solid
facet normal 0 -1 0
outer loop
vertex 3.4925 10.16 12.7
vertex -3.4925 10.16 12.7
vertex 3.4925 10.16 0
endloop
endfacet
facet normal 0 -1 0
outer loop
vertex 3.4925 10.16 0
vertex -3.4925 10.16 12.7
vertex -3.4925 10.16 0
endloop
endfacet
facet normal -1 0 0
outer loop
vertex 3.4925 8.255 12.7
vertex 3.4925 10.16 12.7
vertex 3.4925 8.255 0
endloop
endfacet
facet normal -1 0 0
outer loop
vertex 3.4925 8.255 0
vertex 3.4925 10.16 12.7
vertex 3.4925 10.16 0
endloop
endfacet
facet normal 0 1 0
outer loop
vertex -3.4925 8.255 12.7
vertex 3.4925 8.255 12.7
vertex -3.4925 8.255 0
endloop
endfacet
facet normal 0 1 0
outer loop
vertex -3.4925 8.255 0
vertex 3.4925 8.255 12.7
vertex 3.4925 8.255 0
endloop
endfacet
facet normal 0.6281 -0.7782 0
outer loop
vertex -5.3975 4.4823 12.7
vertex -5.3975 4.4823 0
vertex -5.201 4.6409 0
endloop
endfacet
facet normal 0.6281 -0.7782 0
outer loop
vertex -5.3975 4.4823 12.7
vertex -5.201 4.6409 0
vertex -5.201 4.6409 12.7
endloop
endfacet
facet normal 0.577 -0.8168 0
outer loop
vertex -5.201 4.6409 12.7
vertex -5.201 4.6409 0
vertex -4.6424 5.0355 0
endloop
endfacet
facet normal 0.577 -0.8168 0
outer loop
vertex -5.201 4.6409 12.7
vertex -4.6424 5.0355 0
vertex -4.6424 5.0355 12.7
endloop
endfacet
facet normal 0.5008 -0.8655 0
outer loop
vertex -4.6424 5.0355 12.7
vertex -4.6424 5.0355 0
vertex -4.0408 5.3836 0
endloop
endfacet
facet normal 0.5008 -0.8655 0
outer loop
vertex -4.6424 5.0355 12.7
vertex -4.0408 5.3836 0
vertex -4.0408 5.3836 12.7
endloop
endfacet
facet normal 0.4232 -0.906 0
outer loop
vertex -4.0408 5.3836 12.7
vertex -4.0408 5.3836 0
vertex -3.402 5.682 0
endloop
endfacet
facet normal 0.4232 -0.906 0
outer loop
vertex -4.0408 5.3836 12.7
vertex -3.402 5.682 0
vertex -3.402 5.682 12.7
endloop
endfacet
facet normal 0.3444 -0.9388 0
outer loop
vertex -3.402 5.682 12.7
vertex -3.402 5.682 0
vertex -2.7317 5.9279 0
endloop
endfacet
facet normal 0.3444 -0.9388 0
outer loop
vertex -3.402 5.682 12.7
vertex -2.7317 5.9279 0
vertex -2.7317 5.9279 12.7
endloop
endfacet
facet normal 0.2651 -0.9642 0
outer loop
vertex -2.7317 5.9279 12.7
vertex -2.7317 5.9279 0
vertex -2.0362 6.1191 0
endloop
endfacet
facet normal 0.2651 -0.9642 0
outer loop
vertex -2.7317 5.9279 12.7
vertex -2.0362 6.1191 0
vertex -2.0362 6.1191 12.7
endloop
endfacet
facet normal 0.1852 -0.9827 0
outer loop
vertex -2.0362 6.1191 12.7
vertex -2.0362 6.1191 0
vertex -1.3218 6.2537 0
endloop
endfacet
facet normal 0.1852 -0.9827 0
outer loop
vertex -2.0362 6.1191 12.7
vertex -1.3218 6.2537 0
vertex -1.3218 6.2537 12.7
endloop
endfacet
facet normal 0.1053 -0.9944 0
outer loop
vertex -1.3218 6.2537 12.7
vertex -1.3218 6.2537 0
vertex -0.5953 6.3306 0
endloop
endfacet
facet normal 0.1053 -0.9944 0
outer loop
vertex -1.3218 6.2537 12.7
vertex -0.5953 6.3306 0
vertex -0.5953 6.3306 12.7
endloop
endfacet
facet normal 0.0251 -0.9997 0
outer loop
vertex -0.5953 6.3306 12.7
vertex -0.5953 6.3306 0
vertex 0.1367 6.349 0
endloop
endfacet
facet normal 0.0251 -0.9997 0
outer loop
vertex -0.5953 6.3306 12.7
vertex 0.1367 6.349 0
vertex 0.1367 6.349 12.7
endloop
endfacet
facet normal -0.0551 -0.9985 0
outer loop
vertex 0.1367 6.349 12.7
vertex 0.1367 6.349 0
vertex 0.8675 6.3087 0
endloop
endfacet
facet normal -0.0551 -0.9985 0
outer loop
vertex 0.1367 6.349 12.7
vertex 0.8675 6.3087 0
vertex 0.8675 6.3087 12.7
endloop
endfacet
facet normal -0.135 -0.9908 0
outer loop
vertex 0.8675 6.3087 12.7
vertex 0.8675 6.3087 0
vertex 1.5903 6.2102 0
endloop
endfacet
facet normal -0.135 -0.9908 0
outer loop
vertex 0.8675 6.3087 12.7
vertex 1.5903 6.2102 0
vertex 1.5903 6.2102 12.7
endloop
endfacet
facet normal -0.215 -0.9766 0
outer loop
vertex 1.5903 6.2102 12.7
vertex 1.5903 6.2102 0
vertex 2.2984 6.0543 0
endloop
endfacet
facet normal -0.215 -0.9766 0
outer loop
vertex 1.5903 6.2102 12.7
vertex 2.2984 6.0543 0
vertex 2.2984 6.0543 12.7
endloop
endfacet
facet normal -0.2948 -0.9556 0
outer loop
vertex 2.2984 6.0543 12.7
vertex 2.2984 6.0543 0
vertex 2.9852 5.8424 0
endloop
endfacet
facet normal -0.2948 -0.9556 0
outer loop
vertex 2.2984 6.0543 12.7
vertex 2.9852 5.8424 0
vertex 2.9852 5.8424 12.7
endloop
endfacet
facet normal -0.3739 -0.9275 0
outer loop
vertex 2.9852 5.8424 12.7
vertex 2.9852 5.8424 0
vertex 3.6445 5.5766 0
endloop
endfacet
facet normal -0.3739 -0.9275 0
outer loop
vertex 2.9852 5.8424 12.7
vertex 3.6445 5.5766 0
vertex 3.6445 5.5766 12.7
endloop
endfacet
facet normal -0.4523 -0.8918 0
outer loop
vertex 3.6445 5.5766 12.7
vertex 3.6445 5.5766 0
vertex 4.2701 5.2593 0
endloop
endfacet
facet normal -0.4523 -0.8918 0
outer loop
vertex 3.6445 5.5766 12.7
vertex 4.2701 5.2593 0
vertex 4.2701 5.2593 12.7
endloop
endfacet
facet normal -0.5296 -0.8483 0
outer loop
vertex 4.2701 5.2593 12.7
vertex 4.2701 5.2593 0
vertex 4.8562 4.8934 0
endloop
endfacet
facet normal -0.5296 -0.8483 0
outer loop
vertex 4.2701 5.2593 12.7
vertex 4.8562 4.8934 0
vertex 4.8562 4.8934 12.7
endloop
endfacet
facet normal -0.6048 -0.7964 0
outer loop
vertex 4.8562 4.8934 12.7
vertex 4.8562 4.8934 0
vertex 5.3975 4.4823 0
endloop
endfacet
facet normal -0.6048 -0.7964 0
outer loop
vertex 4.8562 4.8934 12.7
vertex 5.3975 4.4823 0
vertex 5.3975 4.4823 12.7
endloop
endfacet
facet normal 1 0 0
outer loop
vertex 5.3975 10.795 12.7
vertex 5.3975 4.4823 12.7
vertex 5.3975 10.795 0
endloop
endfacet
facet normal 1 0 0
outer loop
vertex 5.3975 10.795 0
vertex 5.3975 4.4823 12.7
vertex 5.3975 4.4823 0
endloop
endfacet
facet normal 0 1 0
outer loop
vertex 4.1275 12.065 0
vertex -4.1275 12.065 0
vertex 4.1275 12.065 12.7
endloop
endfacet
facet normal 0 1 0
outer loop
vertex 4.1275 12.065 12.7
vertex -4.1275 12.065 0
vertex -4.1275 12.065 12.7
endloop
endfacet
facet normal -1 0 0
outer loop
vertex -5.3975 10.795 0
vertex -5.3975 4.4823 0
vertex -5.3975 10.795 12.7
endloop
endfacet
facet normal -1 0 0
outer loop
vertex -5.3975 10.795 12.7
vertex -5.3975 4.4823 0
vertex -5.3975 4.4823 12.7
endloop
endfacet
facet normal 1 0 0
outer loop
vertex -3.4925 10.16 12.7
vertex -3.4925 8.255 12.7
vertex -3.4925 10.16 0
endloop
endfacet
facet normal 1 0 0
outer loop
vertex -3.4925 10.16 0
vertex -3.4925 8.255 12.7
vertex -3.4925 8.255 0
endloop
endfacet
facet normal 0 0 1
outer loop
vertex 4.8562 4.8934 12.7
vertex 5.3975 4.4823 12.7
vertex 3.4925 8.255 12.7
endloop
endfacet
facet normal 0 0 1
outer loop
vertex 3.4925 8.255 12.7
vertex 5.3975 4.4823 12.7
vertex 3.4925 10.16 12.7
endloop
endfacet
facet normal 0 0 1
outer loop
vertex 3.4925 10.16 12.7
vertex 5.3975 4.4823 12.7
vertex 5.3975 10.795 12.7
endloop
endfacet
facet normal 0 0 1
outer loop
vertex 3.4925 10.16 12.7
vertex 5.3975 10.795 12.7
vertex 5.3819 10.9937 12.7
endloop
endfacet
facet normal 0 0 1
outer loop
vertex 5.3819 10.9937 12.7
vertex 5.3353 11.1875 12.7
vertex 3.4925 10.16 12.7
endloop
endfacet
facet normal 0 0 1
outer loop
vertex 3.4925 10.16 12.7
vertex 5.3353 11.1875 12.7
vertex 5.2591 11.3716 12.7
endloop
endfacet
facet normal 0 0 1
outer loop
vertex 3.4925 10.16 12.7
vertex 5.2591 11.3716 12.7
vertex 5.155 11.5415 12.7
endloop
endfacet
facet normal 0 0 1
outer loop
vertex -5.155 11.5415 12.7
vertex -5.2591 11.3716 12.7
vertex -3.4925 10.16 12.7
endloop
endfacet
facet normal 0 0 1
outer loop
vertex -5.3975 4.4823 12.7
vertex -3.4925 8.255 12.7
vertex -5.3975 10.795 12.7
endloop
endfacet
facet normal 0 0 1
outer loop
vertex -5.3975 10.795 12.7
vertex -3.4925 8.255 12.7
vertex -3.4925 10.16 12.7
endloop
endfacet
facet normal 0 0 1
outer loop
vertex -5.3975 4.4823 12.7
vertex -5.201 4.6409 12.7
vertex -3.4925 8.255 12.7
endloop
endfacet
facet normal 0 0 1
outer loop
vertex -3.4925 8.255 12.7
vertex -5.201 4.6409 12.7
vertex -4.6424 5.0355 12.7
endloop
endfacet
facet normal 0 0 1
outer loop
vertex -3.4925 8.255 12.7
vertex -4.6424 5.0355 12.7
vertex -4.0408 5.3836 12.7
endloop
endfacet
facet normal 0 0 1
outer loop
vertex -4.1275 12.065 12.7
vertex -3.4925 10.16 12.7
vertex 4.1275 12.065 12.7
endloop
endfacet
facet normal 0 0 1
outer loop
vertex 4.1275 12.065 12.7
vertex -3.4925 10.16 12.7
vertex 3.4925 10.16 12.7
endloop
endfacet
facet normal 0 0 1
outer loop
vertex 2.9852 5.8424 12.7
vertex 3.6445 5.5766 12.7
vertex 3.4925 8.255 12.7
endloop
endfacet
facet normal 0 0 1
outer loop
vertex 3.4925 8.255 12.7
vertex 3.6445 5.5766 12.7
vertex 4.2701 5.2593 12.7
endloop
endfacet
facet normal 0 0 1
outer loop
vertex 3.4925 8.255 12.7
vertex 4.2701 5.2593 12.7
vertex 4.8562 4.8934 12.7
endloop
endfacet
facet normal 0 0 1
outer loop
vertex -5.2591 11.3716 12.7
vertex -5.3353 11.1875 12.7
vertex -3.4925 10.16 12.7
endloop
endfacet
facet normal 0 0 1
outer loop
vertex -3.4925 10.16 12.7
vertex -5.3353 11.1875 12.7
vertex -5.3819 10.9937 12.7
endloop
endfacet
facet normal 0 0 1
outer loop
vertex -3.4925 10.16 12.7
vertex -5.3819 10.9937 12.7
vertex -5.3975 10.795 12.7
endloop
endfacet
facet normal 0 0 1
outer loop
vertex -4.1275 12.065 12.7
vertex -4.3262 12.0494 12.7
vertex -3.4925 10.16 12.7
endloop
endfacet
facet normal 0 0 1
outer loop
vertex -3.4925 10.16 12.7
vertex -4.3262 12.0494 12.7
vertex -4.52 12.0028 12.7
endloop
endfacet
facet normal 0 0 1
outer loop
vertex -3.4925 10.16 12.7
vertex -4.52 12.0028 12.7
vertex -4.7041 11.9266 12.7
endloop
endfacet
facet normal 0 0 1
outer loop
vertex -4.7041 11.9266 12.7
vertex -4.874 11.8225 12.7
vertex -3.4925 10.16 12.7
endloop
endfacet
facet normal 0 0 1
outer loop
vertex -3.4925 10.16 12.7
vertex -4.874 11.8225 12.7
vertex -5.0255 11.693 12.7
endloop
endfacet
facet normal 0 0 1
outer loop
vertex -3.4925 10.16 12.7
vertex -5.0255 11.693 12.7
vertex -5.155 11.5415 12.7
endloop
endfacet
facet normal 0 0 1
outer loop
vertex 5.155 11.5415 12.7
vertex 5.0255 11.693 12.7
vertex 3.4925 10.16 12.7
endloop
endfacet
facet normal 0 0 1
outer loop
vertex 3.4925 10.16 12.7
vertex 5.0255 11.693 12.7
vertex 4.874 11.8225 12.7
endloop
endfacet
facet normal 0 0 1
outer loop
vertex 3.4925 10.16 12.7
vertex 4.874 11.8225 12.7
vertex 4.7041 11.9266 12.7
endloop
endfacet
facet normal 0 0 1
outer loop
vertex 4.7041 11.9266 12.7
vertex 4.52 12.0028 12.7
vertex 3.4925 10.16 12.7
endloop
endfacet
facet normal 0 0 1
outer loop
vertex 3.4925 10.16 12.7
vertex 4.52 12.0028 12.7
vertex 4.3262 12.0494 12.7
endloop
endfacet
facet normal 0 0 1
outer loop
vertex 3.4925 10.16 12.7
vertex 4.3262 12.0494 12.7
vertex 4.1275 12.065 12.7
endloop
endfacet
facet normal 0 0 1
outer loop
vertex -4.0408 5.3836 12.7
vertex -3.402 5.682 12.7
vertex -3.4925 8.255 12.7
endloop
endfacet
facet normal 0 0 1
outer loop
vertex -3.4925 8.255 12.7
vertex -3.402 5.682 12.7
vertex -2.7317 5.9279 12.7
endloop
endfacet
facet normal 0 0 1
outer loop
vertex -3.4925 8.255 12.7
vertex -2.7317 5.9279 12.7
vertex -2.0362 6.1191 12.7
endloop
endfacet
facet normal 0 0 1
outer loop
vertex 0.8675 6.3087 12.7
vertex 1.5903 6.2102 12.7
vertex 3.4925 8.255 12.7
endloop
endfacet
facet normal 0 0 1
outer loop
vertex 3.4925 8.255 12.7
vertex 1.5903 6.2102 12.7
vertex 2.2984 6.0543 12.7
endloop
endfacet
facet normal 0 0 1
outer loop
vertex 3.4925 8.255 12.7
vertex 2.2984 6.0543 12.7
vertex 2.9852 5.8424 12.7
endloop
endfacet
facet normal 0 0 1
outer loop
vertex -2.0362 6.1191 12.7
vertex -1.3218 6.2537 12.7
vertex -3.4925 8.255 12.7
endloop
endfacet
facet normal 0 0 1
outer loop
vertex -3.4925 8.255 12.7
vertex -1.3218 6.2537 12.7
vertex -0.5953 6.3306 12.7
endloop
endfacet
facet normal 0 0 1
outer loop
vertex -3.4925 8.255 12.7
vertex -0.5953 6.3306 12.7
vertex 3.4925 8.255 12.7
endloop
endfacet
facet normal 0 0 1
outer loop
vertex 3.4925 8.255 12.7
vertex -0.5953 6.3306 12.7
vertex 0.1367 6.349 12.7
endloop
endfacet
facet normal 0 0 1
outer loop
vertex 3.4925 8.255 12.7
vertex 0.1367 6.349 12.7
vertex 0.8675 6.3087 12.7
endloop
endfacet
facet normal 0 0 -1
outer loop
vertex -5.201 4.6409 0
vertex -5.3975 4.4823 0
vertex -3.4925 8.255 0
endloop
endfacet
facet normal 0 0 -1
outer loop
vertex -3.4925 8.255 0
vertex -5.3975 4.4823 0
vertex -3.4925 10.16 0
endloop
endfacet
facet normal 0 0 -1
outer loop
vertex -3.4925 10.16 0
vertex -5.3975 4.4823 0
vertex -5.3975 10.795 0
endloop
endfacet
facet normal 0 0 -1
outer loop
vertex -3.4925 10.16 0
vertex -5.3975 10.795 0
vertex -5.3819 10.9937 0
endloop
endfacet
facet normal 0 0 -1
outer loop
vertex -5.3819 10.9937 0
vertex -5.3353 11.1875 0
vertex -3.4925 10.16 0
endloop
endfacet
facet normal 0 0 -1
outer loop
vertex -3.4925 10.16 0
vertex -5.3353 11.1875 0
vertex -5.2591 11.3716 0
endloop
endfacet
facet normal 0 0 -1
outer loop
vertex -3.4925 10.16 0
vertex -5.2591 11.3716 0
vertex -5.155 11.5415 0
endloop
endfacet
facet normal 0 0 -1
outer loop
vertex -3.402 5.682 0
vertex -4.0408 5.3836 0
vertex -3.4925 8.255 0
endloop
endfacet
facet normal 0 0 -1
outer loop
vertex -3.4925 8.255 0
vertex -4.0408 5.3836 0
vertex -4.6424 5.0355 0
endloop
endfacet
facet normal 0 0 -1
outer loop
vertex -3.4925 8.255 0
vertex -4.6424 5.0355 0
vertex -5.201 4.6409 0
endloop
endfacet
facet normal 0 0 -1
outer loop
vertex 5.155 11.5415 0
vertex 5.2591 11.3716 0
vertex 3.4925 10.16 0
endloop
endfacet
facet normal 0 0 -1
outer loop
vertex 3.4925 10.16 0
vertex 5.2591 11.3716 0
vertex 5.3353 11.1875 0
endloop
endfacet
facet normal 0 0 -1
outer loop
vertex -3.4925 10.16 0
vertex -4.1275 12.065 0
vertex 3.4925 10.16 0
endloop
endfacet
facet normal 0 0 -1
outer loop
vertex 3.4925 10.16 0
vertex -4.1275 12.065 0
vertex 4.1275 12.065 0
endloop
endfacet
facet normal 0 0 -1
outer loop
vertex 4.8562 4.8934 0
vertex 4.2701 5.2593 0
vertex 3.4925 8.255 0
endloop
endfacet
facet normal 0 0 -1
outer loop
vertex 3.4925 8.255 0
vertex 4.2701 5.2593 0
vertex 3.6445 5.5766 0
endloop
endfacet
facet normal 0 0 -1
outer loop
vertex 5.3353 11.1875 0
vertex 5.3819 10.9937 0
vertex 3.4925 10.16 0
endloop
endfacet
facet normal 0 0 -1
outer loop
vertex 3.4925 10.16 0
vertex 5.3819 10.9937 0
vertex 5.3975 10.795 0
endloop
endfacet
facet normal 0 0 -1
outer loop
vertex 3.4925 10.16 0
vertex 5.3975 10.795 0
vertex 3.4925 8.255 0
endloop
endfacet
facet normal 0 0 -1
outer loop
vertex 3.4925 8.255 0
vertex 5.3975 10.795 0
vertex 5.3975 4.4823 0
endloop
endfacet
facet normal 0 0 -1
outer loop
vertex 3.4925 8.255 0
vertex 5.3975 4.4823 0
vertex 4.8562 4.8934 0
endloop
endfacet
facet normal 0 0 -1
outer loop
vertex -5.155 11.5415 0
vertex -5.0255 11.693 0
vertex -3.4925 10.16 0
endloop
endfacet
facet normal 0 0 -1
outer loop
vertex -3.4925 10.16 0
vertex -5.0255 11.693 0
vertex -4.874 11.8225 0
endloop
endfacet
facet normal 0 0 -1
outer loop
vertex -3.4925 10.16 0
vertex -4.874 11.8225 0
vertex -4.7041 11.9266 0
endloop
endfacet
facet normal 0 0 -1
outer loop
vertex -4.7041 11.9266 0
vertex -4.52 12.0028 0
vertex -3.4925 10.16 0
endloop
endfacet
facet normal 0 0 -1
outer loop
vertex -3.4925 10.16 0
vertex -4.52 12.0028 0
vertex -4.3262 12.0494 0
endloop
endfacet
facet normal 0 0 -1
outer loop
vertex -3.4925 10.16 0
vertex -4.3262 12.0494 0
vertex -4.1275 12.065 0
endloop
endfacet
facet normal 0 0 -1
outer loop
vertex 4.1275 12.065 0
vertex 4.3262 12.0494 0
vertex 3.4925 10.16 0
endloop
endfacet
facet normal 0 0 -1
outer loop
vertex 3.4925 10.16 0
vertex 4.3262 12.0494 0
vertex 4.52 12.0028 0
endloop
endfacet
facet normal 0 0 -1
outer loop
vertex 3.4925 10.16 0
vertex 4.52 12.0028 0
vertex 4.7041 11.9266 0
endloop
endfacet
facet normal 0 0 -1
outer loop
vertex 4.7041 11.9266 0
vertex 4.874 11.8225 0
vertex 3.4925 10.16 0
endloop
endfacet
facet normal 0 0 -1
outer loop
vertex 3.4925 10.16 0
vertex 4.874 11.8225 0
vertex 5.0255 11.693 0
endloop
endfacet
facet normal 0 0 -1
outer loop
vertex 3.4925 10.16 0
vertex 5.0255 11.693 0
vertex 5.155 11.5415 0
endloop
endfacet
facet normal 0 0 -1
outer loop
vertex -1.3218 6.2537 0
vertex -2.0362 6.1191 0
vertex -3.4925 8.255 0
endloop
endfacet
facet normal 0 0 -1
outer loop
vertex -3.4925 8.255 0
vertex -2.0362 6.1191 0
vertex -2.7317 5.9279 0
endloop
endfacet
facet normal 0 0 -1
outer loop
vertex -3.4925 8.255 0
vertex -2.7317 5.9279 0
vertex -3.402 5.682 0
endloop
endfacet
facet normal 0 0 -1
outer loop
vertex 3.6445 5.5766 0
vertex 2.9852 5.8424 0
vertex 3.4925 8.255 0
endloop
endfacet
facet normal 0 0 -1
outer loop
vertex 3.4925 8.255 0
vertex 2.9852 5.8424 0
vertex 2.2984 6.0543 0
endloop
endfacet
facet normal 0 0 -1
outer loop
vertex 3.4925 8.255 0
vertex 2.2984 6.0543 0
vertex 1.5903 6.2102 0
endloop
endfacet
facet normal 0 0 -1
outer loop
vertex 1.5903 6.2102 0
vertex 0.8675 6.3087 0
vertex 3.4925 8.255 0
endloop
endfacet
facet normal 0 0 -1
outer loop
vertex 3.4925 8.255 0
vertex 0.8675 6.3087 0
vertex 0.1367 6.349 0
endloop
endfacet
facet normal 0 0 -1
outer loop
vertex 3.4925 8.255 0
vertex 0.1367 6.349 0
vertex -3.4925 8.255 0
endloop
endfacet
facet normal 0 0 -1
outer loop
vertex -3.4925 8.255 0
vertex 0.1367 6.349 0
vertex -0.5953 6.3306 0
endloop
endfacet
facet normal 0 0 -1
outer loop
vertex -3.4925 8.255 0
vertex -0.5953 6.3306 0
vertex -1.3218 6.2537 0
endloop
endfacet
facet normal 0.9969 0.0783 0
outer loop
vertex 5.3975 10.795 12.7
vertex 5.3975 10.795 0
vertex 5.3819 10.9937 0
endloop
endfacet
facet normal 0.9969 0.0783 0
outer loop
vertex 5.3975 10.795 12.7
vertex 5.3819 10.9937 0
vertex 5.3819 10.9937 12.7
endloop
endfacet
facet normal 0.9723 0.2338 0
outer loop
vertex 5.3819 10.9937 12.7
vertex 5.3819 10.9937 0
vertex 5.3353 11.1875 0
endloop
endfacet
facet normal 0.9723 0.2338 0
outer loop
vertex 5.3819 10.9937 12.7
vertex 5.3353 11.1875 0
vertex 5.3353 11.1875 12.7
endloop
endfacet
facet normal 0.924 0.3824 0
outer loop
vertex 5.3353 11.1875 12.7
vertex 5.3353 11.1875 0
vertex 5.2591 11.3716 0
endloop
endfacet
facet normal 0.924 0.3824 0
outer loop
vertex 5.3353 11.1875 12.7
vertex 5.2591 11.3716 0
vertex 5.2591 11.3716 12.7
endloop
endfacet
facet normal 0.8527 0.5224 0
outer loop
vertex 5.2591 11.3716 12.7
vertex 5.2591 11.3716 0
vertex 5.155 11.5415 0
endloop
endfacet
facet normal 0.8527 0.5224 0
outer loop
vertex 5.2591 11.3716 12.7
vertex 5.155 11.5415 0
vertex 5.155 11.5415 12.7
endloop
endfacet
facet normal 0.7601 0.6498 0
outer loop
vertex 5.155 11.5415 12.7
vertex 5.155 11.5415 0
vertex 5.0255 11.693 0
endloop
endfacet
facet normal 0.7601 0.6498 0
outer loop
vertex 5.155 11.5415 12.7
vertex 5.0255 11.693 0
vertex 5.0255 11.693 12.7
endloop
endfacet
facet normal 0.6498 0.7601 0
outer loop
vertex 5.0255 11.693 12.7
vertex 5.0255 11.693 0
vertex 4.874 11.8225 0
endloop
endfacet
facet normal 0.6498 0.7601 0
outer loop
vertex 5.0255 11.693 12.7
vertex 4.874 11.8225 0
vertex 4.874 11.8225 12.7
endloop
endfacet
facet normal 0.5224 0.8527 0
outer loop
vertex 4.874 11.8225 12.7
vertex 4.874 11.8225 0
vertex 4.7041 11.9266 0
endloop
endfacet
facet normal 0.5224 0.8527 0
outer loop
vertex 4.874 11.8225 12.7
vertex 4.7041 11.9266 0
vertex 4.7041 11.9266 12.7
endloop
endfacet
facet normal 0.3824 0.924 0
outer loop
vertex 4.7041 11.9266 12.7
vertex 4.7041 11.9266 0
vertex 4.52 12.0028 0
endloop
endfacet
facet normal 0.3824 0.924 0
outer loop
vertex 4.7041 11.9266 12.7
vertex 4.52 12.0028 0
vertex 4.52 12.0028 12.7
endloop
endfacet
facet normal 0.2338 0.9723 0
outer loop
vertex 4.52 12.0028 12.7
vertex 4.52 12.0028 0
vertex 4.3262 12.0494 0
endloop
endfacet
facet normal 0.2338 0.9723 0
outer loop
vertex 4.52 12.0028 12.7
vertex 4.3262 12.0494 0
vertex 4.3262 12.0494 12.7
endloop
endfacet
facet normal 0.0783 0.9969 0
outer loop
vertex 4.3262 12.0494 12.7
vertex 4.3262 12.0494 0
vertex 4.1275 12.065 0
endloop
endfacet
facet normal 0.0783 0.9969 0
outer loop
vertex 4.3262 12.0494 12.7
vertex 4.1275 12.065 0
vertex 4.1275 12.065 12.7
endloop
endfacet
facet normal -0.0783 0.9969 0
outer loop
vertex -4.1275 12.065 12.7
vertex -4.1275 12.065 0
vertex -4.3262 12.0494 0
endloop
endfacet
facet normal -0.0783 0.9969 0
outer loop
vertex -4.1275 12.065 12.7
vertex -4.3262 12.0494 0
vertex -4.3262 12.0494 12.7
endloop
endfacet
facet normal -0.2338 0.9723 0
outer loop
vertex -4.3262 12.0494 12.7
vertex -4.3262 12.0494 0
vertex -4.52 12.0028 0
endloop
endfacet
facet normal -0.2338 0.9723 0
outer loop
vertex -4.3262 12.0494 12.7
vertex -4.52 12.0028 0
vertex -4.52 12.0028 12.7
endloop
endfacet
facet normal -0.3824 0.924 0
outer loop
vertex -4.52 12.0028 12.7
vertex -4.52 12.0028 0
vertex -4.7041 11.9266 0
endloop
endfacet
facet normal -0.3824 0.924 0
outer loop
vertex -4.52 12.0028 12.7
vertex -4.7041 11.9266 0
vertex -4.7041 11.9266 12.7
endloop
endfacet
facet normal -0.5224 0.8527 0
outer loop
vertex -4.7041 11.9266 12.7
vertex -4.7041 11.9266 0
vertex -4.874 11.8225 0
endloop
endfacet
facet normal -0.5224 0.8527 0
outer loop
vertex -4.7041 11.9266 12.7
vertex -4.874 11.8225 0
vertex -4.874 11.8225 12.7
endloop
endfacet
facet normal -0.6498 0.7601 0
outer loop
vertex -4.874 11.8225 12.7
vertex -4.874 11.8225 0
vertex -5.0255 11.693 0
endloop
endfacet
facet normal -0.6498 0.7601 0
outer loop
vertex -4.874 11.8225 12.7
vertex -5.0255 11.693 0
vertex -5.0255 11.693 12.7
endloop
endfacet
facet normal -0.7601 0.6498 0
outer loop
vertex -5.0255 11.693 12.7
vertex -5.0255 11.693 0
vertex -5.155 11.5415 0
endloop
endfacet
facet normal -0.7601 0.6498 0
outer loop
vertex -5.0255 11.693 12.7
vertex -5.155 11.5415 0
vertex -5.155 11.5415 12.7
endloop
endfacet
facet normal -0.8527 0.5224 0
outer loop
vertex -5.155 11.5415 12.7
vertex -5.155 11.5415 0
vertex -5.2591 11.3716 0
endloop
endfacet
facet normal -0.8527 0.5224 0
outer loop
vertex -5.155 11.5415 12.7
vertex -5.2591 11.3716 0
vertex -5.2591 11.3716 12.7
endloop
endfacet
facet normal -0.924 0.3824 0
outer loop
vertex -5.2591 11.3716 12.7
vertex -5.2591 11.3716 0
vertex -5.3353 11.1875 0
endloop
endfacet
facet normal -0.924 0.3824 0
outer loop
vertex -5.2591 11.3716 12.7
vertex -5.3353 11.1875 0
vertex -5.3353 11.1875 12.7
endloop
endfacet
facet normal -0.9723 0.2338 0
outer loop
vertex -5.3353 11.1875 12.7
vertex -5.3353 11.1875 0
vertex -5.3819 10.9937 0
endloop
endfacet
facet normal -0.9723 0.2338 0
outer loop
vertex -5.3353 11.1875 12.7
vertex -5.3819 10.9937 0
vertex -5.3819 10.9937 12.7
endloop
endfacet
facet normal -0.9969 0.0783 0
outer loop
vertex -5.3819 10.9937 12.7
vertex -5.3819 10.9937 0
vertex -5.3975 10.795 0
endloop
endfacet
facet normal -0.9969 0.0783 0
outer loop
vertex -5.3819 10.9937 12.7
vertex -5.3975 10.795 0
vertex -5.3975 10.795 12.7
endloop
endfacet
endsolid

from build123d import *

# Parameters (mm, degrees)
SKETCH1_W           = 6.985
SKETCH1_H           = 1.905
BOSS_EXTRUDE1_DEPTH = 12.7
FILLET1_R           = 1.27


with BuildPart() as part:
    # Sketch1 → Boss-Extrude1 (new body)
    with BuildSketch(Plane.XY):
        with BuildLine():
            add(Edge.make_bspline(
                [(5.3975, 4.482325921), (0, 8.995887562), (-5.3975, 4.482325921)],
                knots=[3.925254702, 3.925254702, 3.925254702, 5.499523258, 5.499523258, 5.499523258], degree=2, weights=[1, 0.705878098, 1]))
            Line((5.3975, 4.482325921), (5.3975, 12.065))
            Line((5.3975, 12.065), (-5.3975, 12.065))
            Line((-5.3975, 12.065), (-5.3975, 4.482325921))
        make_face()
        with Locations((0, 9.2075)):
            Rectangle(SKETCH1_W, SKETCH1_H, mode=Mode.SUBTRACT)
    extrude(amount=BOSS_EXTRUDE1_DEPTH)

    # Fillet1
    fillet1_edges = [part.edges().sort_by_distance(p)[0] for p in [
        (-5.3975, 12.065, 6.35),
        (5.3975, 12.065, 6.35),
    ]]
    fillet(fillet1_edges, radius=FILLET1_R)


solid = part.part
